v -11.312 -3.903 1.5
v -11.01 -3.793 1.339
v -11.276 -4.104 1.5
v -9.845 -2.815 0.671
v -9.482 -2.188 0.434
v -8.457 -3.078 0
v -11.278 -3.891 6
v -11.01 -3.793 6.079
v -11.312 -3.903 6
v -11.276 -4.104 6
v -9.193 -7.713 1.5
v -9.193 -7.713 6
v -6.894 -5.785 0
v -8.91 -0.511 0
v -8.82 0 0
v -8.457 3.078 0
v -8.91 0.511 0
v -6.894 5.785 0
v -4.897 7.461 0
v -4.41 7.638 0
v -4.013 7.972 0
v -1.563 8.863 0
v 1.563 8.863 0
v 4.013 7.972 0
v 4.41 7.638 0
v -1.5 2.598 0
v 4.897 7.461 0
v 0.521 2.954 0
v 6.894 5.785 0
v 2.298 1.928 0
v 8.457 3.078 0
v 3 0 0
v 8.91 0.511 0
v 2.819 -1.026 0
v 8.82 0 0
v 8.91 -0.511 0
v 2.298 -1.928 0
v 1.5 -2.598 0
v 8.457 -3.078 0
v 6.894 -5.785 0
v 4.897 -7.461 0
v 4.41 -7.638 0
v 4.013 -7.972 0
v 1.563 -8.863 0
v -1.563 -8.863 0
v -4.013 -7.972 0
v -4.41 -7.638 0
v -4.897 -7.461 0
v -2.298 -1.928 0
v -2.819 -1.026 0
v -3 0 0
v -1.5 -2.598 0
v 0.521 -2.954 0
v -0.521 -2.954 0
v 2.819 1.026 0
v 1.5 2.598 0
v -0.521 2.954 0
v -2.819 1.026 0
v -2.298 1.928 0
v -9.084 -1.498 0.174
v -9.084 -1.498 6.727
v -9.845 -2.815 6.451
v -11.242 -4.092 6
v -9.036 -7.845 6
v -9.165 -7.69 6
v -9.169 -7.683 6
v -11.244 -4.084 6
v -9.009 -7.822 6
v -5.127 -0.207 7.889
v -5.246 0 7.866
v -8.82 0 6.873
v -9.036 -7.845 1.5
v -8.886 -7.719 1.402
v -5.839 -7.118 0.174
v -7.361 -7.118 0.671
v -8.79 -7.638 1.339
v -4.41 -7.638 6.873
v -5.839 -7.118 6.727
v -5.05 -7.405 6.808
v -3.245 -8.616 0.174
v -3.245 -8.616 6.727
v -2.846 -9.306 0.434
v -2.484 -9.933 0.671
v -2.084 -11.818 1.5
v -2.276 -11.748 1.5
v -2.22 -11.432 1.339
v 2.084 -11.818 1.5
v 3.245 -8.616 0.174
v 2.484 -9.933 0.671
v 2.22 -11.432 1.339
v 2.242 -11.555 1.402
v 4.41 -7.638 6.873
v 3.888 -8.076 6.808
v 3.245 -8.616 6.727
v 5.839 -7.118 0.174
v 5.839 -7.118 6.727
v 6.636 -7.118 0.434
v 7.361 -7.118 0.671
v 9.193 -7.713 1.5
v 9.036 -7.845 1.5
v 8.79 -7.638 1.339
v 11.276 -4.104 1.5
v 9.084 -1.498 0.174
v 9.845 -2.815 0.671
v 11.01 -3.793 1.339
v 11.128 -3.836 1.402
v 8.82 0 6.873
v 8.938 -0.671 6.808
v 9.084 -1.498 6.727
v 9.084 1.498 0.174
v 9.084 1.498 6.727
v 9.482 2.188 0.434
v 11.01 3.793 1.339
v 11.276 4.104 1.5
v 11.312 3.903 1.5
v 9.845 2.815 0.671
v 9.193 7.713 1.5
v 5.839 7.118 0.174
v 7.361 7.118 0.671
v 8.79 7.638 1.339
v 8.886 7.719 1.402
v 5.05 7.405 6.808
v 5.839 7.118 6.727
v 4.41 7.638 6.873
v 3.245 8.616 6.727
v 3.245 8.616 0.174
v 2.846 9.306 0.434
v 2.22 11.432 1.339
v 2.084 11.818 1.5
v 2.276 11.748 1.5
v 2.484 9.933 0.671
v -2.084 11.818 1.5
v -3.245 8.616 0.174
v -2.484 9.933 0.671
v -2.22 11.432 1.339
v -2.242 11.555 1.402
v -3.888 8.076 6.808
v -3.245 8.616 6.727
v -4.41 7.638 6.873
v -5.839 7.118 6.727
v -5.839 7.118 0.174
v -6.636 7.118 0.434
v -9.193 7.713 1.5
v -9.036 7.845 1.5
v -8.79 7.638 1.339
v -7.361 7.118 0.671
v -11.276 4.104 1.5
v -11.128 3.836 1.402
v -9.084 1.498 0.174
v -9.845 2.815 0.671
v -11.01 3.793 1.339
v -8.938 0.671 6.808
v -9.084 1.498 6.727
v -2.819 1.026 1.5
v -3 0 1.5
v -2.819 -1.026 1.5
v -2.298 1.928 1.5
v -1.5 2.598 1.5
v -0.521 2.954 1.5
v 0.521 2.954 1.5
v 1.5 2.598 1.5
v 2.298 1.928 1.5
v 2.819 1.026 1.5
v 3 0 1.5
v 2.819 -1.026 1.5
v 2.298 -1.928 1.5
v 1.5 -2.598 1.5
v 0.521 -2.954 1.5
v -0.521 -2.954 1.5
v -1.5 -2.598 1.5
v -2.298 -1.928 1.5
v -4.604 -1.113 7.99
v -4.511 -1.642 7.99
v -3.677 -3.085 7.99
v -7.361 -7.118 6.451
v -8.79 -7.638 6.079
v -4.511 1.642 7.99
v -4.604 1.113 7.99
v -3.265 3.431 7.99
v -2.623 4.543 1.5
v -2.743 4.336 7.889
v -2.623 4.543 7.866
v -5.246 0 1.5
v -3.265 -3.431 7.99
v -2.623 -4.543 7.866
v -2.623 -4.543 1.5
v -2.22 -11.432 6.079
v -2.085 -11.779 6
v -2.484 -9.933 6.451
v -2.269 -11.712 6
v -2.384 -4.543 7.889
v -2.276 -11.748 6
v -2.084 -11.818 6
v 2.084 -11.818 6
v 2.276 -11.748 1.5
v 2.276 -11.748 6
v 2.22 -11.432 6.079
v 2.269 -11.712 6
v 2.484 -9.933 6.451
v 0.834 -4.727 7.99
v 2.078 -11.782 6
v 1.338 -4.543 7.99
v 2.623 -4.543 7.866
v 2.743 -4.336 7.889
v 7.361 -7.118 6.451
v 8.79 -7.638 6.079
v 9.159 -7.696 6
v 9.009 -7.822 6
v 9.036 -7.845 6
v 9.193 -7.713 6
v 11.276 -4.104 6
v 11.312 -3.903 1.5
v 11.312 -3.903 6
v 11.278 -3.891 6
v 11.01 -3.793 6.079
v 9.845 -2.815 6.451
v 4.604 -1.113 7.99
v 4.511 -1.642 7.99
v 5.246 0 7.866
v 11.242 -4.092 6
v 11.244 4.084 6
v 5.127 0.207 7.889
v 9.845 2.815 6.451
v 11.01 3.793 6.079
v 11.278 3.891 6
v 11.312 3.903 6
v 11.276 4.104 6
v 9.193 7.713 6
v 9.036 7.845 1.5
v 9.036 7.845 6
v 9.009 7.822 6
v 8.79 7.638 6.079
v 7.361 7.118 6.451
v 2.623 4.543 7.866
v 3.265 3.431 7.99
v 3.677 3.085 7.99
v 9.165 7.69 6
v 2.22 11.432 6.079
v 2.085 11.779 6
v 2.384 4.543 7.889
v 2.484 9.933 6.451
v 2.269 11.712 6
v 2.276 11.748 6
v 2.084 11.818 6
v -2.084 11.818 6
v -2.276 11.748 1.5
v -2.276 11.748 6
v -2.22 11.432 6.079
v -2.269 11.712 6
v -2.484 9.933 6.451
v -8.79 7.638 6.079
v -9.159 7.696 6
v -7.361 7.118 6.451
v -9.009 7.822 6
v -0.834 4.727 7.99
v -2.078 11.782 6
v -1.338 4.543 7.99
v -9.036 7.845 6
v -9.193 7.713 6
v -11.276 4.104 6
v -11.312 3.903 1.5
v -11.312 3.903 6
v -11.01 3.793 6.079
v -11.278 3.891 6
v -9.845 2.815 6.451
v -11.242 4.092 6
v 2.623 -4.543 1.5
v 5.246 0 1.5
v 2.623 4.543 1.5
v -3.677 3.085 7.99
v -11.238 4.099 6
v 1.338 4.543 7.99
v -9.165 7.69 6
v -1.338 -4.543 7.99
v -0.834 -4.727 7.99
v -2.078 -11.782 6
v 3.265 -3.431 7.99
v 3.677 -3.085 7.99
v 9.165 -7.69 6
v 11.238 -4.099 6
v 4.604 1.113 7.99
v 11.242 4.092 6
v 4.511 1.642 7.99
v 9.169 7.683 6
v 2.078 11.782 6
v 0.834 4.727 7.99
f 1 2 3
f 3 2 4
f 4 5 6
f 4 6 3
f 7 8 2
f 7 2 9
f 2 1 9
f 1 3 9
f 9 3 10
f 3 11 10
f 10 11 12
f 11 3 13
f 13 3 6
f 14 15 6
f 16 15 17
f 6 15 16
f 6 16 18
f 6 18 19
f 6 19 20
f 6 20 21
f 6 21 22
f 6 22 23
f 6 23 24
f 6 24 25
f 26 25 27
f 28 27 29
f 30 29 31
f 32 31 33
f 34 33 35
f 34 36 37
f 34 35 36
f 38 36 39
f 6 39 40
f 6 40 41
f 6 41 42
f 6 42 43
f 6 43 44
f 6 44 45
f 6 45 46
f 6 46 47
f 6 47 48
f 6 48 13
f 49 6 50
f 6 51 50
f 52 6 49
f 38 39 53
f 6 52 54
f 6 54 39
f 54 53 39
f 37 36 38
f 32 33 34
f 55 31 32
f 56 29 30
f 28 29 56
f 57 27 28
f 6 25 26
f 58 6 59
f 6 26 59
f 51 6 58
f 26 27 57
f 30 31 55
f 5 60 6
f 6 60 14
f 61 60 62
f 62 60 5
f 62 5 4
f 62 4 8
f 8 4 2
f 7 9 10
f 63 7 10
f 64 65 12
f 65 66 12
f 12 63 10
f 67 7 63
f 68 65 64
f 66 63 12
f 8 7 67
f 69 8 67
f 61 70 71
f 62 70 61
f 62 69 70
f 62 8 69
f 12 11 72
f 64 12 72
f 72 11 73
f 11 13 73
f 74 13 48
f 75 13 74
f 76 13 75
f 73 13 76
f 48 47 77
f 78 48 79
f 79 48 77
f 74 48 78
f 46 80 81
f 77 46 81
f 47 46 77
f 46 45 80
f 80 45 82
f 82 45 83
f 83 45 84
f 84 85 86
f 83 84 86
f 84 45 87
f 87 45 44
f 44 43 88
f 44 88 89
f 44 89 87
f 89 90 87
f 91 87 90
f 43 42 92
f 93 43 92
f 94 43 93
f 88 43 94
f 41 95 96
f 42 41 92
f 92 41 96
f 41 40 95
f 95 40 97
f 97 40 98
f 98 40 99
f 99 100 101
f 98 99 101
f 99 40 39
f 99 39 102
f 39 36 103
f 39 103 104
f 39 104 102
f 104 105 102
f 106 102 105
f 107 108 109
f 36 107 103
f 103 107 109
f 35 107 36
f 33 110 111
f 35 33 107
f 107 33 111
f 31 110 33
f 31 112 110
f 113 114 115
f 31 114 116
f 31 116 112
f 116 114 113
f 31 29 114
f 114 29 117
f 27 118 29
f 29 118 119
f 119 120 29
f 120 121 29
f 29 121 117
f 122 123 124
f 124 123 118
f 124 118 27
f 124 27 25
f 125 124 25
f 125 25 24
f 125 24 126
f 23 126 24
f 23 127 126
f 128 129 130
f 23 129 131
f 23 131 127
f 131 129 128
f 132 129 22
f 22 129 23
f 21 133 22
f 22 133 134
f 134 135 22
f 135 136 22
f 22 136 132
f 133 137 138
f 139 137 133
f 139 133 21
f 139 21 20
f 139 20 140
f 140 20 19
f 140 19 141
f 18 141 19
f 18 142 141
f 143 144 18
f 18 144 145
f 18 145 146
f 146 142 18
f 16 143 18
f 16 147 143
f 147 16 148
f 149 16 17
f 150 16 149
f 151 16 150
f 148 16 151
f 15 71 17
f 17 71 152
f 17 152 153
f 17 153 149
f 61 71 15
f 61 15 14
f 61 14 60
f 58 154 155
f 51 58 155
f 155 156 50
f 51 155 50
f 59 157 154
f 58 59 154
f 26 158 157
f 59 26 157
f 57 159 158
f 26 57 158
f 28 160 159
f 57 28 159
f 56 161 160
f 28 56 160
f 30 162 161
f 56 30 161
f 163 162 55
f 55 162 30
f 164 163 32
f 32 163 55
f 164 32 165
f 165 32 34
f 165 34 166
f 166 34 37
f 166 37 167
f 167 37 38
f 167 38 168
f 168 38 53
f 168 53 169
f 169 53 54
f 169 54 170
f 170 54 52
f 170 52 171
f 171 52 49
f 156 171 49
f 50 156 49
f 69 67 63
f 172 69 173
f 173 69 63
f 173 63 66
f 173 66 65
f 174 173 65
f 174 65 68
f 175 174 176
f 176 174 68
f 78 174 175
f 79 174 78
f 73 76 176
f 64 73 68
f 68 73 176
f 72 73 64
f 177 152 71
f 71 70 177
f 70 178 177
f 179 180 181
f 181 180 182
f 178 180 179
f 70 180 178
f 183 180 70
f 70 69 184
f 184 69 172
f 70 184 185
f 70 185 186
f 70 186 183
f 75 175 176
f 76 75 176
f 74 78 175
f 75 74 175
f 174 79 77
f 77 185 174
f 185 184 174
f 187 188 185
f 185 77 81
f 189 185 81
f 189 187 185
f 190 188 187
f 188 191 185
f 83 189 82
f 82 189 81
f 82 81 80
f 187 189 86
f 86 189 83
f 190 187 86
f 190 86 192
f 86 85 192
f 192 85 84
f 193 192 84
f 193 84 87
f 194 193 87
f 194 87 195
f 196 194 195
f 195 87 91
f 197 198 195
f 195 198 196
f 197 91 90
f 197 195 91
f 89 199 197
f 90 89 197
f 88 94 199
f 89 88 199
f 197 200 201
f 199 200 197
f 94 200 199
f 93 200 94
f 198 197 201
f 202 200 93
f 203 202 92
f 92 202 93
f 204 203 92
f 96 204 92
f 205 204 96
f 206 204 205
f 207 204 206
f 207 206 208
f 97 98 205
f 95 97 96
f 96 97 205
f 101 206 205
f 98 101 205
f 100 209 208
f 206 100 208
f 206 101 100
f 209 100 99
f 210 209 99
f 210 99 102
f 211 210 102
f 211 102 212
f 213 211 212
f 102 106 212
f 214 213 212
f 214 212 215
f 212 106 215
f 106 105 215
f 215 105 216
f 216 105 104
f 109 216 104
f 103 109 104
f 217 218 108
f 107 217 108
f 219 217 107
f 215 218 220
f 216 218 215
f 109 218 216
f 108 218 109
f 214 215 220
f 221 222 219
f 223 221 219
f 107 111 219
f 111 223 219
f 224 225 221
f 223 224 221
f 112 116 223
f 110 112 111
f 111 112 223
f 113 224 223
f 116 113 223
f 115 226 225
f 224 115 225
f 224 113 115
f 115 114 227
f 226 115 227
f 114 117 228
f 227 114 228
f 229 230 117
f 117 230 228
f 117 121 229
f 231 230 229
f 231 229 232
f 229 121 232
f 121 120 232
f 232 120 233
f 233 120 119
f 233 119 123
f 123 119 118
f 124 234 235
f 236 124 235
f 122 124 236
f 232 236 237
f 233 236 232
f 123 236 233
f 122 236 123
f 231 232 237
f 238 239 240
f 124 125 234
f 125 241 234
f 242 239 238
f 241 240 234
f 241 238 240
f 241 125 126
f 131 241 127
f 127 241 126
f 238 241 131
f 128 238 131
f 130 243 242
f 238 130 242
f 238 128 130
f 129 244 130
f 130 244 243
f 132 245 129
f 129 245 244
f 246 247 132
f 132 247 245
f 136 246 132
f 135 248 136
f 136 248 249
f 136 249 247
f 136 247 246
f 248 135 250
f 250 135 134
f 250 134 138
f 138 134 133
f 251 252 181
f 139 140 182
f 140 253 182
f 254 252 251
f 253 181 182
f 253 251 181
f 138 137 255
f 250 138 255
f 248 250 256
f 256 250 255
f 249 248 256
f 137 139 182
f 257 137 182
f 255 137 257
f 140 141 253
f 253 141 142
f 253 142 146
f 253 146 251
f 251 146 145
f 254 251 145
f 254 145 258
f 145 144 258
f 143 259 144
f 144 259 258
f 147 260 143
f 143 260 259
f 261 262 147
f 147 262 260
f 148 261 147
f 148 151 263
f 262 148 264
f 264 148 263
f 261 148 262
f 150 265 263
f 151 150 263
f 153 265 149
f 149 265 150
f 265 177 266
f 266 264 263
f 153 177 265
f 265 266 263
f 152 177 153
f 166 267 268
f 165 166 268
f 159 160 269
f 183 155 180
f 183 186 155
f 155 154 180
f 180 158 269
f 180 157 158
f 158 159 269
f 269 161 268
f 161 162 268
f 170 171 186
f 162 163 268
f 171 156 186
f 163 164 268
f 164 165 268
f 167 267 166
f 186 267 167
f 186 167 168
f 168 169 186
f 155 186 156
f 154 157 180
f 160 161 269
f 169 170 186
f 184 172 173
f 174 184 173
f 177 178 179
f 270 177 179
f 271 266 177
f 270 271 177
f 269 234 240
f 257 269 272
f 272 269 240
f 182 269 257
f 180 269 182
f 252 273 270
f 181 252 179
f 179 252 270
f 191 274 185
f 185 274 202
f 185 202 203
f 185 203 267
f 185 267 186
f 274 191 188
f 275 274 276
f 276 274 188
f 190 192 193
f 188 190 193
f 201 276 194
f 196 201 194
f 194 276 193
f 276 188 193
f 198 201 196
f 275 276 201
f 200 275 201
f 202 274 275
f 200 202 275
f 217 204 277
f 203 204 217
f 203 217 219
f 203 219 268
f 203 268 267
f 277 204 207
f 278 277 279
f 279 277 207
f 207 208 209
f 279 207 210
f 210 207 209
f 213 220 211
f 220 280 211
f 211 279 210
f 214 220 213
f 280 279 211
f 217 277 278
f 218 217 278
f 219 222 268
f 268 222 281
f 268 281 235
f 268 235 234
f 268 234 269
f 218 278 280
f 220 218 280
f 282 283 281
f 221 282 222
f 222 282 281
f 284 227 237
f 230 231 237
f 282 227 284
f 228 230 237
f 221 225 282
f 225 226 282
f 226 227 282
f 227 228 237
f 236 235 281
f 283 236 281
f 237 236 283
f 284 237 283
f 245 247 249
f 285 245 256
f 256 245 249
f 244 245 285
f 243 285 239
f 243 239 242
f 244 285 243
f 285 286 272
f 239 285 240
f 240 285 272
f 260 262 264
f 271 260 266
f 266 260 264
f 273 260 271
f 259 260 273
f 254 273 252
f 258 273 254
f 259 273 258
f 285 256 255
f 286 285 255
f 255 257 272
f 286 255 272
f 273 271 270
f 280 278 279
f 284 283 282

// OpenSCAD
$fn = 18;

module FingerWheel (nut_size=9, hole_dia=6)
{
	difference()
	{
		union()
		{
			translate([0,0,1.5]) cylinder(r=hole_dia*2, h=4.5);
			translate([0,0,5.99]) cylinder(r1=hole_dia*2, r2=hole_dia*0.8, h=2);
			cylinder(r1=hole_dia*1.5, r2=hole_dia*2, h=1.5);
		}
		translate([0,0,1.5])cylinder(r=nut_size / 2 / cos(180 / 6) + 0.05, h=8, $fn=6);
		translate([0,0,-0.01])cylinder(r=hole_dia/2, h=20);
		for(z = [0 : 6])
		{
			rotate(a=60*z, v=[0,0,1]) translate([hole_dia*2.2,0,-3])cylinder(r=hole_dia / 1.6 / cos(180 / 6) + 0.05, h=20);
		}
	}
}

FingerWheel();
